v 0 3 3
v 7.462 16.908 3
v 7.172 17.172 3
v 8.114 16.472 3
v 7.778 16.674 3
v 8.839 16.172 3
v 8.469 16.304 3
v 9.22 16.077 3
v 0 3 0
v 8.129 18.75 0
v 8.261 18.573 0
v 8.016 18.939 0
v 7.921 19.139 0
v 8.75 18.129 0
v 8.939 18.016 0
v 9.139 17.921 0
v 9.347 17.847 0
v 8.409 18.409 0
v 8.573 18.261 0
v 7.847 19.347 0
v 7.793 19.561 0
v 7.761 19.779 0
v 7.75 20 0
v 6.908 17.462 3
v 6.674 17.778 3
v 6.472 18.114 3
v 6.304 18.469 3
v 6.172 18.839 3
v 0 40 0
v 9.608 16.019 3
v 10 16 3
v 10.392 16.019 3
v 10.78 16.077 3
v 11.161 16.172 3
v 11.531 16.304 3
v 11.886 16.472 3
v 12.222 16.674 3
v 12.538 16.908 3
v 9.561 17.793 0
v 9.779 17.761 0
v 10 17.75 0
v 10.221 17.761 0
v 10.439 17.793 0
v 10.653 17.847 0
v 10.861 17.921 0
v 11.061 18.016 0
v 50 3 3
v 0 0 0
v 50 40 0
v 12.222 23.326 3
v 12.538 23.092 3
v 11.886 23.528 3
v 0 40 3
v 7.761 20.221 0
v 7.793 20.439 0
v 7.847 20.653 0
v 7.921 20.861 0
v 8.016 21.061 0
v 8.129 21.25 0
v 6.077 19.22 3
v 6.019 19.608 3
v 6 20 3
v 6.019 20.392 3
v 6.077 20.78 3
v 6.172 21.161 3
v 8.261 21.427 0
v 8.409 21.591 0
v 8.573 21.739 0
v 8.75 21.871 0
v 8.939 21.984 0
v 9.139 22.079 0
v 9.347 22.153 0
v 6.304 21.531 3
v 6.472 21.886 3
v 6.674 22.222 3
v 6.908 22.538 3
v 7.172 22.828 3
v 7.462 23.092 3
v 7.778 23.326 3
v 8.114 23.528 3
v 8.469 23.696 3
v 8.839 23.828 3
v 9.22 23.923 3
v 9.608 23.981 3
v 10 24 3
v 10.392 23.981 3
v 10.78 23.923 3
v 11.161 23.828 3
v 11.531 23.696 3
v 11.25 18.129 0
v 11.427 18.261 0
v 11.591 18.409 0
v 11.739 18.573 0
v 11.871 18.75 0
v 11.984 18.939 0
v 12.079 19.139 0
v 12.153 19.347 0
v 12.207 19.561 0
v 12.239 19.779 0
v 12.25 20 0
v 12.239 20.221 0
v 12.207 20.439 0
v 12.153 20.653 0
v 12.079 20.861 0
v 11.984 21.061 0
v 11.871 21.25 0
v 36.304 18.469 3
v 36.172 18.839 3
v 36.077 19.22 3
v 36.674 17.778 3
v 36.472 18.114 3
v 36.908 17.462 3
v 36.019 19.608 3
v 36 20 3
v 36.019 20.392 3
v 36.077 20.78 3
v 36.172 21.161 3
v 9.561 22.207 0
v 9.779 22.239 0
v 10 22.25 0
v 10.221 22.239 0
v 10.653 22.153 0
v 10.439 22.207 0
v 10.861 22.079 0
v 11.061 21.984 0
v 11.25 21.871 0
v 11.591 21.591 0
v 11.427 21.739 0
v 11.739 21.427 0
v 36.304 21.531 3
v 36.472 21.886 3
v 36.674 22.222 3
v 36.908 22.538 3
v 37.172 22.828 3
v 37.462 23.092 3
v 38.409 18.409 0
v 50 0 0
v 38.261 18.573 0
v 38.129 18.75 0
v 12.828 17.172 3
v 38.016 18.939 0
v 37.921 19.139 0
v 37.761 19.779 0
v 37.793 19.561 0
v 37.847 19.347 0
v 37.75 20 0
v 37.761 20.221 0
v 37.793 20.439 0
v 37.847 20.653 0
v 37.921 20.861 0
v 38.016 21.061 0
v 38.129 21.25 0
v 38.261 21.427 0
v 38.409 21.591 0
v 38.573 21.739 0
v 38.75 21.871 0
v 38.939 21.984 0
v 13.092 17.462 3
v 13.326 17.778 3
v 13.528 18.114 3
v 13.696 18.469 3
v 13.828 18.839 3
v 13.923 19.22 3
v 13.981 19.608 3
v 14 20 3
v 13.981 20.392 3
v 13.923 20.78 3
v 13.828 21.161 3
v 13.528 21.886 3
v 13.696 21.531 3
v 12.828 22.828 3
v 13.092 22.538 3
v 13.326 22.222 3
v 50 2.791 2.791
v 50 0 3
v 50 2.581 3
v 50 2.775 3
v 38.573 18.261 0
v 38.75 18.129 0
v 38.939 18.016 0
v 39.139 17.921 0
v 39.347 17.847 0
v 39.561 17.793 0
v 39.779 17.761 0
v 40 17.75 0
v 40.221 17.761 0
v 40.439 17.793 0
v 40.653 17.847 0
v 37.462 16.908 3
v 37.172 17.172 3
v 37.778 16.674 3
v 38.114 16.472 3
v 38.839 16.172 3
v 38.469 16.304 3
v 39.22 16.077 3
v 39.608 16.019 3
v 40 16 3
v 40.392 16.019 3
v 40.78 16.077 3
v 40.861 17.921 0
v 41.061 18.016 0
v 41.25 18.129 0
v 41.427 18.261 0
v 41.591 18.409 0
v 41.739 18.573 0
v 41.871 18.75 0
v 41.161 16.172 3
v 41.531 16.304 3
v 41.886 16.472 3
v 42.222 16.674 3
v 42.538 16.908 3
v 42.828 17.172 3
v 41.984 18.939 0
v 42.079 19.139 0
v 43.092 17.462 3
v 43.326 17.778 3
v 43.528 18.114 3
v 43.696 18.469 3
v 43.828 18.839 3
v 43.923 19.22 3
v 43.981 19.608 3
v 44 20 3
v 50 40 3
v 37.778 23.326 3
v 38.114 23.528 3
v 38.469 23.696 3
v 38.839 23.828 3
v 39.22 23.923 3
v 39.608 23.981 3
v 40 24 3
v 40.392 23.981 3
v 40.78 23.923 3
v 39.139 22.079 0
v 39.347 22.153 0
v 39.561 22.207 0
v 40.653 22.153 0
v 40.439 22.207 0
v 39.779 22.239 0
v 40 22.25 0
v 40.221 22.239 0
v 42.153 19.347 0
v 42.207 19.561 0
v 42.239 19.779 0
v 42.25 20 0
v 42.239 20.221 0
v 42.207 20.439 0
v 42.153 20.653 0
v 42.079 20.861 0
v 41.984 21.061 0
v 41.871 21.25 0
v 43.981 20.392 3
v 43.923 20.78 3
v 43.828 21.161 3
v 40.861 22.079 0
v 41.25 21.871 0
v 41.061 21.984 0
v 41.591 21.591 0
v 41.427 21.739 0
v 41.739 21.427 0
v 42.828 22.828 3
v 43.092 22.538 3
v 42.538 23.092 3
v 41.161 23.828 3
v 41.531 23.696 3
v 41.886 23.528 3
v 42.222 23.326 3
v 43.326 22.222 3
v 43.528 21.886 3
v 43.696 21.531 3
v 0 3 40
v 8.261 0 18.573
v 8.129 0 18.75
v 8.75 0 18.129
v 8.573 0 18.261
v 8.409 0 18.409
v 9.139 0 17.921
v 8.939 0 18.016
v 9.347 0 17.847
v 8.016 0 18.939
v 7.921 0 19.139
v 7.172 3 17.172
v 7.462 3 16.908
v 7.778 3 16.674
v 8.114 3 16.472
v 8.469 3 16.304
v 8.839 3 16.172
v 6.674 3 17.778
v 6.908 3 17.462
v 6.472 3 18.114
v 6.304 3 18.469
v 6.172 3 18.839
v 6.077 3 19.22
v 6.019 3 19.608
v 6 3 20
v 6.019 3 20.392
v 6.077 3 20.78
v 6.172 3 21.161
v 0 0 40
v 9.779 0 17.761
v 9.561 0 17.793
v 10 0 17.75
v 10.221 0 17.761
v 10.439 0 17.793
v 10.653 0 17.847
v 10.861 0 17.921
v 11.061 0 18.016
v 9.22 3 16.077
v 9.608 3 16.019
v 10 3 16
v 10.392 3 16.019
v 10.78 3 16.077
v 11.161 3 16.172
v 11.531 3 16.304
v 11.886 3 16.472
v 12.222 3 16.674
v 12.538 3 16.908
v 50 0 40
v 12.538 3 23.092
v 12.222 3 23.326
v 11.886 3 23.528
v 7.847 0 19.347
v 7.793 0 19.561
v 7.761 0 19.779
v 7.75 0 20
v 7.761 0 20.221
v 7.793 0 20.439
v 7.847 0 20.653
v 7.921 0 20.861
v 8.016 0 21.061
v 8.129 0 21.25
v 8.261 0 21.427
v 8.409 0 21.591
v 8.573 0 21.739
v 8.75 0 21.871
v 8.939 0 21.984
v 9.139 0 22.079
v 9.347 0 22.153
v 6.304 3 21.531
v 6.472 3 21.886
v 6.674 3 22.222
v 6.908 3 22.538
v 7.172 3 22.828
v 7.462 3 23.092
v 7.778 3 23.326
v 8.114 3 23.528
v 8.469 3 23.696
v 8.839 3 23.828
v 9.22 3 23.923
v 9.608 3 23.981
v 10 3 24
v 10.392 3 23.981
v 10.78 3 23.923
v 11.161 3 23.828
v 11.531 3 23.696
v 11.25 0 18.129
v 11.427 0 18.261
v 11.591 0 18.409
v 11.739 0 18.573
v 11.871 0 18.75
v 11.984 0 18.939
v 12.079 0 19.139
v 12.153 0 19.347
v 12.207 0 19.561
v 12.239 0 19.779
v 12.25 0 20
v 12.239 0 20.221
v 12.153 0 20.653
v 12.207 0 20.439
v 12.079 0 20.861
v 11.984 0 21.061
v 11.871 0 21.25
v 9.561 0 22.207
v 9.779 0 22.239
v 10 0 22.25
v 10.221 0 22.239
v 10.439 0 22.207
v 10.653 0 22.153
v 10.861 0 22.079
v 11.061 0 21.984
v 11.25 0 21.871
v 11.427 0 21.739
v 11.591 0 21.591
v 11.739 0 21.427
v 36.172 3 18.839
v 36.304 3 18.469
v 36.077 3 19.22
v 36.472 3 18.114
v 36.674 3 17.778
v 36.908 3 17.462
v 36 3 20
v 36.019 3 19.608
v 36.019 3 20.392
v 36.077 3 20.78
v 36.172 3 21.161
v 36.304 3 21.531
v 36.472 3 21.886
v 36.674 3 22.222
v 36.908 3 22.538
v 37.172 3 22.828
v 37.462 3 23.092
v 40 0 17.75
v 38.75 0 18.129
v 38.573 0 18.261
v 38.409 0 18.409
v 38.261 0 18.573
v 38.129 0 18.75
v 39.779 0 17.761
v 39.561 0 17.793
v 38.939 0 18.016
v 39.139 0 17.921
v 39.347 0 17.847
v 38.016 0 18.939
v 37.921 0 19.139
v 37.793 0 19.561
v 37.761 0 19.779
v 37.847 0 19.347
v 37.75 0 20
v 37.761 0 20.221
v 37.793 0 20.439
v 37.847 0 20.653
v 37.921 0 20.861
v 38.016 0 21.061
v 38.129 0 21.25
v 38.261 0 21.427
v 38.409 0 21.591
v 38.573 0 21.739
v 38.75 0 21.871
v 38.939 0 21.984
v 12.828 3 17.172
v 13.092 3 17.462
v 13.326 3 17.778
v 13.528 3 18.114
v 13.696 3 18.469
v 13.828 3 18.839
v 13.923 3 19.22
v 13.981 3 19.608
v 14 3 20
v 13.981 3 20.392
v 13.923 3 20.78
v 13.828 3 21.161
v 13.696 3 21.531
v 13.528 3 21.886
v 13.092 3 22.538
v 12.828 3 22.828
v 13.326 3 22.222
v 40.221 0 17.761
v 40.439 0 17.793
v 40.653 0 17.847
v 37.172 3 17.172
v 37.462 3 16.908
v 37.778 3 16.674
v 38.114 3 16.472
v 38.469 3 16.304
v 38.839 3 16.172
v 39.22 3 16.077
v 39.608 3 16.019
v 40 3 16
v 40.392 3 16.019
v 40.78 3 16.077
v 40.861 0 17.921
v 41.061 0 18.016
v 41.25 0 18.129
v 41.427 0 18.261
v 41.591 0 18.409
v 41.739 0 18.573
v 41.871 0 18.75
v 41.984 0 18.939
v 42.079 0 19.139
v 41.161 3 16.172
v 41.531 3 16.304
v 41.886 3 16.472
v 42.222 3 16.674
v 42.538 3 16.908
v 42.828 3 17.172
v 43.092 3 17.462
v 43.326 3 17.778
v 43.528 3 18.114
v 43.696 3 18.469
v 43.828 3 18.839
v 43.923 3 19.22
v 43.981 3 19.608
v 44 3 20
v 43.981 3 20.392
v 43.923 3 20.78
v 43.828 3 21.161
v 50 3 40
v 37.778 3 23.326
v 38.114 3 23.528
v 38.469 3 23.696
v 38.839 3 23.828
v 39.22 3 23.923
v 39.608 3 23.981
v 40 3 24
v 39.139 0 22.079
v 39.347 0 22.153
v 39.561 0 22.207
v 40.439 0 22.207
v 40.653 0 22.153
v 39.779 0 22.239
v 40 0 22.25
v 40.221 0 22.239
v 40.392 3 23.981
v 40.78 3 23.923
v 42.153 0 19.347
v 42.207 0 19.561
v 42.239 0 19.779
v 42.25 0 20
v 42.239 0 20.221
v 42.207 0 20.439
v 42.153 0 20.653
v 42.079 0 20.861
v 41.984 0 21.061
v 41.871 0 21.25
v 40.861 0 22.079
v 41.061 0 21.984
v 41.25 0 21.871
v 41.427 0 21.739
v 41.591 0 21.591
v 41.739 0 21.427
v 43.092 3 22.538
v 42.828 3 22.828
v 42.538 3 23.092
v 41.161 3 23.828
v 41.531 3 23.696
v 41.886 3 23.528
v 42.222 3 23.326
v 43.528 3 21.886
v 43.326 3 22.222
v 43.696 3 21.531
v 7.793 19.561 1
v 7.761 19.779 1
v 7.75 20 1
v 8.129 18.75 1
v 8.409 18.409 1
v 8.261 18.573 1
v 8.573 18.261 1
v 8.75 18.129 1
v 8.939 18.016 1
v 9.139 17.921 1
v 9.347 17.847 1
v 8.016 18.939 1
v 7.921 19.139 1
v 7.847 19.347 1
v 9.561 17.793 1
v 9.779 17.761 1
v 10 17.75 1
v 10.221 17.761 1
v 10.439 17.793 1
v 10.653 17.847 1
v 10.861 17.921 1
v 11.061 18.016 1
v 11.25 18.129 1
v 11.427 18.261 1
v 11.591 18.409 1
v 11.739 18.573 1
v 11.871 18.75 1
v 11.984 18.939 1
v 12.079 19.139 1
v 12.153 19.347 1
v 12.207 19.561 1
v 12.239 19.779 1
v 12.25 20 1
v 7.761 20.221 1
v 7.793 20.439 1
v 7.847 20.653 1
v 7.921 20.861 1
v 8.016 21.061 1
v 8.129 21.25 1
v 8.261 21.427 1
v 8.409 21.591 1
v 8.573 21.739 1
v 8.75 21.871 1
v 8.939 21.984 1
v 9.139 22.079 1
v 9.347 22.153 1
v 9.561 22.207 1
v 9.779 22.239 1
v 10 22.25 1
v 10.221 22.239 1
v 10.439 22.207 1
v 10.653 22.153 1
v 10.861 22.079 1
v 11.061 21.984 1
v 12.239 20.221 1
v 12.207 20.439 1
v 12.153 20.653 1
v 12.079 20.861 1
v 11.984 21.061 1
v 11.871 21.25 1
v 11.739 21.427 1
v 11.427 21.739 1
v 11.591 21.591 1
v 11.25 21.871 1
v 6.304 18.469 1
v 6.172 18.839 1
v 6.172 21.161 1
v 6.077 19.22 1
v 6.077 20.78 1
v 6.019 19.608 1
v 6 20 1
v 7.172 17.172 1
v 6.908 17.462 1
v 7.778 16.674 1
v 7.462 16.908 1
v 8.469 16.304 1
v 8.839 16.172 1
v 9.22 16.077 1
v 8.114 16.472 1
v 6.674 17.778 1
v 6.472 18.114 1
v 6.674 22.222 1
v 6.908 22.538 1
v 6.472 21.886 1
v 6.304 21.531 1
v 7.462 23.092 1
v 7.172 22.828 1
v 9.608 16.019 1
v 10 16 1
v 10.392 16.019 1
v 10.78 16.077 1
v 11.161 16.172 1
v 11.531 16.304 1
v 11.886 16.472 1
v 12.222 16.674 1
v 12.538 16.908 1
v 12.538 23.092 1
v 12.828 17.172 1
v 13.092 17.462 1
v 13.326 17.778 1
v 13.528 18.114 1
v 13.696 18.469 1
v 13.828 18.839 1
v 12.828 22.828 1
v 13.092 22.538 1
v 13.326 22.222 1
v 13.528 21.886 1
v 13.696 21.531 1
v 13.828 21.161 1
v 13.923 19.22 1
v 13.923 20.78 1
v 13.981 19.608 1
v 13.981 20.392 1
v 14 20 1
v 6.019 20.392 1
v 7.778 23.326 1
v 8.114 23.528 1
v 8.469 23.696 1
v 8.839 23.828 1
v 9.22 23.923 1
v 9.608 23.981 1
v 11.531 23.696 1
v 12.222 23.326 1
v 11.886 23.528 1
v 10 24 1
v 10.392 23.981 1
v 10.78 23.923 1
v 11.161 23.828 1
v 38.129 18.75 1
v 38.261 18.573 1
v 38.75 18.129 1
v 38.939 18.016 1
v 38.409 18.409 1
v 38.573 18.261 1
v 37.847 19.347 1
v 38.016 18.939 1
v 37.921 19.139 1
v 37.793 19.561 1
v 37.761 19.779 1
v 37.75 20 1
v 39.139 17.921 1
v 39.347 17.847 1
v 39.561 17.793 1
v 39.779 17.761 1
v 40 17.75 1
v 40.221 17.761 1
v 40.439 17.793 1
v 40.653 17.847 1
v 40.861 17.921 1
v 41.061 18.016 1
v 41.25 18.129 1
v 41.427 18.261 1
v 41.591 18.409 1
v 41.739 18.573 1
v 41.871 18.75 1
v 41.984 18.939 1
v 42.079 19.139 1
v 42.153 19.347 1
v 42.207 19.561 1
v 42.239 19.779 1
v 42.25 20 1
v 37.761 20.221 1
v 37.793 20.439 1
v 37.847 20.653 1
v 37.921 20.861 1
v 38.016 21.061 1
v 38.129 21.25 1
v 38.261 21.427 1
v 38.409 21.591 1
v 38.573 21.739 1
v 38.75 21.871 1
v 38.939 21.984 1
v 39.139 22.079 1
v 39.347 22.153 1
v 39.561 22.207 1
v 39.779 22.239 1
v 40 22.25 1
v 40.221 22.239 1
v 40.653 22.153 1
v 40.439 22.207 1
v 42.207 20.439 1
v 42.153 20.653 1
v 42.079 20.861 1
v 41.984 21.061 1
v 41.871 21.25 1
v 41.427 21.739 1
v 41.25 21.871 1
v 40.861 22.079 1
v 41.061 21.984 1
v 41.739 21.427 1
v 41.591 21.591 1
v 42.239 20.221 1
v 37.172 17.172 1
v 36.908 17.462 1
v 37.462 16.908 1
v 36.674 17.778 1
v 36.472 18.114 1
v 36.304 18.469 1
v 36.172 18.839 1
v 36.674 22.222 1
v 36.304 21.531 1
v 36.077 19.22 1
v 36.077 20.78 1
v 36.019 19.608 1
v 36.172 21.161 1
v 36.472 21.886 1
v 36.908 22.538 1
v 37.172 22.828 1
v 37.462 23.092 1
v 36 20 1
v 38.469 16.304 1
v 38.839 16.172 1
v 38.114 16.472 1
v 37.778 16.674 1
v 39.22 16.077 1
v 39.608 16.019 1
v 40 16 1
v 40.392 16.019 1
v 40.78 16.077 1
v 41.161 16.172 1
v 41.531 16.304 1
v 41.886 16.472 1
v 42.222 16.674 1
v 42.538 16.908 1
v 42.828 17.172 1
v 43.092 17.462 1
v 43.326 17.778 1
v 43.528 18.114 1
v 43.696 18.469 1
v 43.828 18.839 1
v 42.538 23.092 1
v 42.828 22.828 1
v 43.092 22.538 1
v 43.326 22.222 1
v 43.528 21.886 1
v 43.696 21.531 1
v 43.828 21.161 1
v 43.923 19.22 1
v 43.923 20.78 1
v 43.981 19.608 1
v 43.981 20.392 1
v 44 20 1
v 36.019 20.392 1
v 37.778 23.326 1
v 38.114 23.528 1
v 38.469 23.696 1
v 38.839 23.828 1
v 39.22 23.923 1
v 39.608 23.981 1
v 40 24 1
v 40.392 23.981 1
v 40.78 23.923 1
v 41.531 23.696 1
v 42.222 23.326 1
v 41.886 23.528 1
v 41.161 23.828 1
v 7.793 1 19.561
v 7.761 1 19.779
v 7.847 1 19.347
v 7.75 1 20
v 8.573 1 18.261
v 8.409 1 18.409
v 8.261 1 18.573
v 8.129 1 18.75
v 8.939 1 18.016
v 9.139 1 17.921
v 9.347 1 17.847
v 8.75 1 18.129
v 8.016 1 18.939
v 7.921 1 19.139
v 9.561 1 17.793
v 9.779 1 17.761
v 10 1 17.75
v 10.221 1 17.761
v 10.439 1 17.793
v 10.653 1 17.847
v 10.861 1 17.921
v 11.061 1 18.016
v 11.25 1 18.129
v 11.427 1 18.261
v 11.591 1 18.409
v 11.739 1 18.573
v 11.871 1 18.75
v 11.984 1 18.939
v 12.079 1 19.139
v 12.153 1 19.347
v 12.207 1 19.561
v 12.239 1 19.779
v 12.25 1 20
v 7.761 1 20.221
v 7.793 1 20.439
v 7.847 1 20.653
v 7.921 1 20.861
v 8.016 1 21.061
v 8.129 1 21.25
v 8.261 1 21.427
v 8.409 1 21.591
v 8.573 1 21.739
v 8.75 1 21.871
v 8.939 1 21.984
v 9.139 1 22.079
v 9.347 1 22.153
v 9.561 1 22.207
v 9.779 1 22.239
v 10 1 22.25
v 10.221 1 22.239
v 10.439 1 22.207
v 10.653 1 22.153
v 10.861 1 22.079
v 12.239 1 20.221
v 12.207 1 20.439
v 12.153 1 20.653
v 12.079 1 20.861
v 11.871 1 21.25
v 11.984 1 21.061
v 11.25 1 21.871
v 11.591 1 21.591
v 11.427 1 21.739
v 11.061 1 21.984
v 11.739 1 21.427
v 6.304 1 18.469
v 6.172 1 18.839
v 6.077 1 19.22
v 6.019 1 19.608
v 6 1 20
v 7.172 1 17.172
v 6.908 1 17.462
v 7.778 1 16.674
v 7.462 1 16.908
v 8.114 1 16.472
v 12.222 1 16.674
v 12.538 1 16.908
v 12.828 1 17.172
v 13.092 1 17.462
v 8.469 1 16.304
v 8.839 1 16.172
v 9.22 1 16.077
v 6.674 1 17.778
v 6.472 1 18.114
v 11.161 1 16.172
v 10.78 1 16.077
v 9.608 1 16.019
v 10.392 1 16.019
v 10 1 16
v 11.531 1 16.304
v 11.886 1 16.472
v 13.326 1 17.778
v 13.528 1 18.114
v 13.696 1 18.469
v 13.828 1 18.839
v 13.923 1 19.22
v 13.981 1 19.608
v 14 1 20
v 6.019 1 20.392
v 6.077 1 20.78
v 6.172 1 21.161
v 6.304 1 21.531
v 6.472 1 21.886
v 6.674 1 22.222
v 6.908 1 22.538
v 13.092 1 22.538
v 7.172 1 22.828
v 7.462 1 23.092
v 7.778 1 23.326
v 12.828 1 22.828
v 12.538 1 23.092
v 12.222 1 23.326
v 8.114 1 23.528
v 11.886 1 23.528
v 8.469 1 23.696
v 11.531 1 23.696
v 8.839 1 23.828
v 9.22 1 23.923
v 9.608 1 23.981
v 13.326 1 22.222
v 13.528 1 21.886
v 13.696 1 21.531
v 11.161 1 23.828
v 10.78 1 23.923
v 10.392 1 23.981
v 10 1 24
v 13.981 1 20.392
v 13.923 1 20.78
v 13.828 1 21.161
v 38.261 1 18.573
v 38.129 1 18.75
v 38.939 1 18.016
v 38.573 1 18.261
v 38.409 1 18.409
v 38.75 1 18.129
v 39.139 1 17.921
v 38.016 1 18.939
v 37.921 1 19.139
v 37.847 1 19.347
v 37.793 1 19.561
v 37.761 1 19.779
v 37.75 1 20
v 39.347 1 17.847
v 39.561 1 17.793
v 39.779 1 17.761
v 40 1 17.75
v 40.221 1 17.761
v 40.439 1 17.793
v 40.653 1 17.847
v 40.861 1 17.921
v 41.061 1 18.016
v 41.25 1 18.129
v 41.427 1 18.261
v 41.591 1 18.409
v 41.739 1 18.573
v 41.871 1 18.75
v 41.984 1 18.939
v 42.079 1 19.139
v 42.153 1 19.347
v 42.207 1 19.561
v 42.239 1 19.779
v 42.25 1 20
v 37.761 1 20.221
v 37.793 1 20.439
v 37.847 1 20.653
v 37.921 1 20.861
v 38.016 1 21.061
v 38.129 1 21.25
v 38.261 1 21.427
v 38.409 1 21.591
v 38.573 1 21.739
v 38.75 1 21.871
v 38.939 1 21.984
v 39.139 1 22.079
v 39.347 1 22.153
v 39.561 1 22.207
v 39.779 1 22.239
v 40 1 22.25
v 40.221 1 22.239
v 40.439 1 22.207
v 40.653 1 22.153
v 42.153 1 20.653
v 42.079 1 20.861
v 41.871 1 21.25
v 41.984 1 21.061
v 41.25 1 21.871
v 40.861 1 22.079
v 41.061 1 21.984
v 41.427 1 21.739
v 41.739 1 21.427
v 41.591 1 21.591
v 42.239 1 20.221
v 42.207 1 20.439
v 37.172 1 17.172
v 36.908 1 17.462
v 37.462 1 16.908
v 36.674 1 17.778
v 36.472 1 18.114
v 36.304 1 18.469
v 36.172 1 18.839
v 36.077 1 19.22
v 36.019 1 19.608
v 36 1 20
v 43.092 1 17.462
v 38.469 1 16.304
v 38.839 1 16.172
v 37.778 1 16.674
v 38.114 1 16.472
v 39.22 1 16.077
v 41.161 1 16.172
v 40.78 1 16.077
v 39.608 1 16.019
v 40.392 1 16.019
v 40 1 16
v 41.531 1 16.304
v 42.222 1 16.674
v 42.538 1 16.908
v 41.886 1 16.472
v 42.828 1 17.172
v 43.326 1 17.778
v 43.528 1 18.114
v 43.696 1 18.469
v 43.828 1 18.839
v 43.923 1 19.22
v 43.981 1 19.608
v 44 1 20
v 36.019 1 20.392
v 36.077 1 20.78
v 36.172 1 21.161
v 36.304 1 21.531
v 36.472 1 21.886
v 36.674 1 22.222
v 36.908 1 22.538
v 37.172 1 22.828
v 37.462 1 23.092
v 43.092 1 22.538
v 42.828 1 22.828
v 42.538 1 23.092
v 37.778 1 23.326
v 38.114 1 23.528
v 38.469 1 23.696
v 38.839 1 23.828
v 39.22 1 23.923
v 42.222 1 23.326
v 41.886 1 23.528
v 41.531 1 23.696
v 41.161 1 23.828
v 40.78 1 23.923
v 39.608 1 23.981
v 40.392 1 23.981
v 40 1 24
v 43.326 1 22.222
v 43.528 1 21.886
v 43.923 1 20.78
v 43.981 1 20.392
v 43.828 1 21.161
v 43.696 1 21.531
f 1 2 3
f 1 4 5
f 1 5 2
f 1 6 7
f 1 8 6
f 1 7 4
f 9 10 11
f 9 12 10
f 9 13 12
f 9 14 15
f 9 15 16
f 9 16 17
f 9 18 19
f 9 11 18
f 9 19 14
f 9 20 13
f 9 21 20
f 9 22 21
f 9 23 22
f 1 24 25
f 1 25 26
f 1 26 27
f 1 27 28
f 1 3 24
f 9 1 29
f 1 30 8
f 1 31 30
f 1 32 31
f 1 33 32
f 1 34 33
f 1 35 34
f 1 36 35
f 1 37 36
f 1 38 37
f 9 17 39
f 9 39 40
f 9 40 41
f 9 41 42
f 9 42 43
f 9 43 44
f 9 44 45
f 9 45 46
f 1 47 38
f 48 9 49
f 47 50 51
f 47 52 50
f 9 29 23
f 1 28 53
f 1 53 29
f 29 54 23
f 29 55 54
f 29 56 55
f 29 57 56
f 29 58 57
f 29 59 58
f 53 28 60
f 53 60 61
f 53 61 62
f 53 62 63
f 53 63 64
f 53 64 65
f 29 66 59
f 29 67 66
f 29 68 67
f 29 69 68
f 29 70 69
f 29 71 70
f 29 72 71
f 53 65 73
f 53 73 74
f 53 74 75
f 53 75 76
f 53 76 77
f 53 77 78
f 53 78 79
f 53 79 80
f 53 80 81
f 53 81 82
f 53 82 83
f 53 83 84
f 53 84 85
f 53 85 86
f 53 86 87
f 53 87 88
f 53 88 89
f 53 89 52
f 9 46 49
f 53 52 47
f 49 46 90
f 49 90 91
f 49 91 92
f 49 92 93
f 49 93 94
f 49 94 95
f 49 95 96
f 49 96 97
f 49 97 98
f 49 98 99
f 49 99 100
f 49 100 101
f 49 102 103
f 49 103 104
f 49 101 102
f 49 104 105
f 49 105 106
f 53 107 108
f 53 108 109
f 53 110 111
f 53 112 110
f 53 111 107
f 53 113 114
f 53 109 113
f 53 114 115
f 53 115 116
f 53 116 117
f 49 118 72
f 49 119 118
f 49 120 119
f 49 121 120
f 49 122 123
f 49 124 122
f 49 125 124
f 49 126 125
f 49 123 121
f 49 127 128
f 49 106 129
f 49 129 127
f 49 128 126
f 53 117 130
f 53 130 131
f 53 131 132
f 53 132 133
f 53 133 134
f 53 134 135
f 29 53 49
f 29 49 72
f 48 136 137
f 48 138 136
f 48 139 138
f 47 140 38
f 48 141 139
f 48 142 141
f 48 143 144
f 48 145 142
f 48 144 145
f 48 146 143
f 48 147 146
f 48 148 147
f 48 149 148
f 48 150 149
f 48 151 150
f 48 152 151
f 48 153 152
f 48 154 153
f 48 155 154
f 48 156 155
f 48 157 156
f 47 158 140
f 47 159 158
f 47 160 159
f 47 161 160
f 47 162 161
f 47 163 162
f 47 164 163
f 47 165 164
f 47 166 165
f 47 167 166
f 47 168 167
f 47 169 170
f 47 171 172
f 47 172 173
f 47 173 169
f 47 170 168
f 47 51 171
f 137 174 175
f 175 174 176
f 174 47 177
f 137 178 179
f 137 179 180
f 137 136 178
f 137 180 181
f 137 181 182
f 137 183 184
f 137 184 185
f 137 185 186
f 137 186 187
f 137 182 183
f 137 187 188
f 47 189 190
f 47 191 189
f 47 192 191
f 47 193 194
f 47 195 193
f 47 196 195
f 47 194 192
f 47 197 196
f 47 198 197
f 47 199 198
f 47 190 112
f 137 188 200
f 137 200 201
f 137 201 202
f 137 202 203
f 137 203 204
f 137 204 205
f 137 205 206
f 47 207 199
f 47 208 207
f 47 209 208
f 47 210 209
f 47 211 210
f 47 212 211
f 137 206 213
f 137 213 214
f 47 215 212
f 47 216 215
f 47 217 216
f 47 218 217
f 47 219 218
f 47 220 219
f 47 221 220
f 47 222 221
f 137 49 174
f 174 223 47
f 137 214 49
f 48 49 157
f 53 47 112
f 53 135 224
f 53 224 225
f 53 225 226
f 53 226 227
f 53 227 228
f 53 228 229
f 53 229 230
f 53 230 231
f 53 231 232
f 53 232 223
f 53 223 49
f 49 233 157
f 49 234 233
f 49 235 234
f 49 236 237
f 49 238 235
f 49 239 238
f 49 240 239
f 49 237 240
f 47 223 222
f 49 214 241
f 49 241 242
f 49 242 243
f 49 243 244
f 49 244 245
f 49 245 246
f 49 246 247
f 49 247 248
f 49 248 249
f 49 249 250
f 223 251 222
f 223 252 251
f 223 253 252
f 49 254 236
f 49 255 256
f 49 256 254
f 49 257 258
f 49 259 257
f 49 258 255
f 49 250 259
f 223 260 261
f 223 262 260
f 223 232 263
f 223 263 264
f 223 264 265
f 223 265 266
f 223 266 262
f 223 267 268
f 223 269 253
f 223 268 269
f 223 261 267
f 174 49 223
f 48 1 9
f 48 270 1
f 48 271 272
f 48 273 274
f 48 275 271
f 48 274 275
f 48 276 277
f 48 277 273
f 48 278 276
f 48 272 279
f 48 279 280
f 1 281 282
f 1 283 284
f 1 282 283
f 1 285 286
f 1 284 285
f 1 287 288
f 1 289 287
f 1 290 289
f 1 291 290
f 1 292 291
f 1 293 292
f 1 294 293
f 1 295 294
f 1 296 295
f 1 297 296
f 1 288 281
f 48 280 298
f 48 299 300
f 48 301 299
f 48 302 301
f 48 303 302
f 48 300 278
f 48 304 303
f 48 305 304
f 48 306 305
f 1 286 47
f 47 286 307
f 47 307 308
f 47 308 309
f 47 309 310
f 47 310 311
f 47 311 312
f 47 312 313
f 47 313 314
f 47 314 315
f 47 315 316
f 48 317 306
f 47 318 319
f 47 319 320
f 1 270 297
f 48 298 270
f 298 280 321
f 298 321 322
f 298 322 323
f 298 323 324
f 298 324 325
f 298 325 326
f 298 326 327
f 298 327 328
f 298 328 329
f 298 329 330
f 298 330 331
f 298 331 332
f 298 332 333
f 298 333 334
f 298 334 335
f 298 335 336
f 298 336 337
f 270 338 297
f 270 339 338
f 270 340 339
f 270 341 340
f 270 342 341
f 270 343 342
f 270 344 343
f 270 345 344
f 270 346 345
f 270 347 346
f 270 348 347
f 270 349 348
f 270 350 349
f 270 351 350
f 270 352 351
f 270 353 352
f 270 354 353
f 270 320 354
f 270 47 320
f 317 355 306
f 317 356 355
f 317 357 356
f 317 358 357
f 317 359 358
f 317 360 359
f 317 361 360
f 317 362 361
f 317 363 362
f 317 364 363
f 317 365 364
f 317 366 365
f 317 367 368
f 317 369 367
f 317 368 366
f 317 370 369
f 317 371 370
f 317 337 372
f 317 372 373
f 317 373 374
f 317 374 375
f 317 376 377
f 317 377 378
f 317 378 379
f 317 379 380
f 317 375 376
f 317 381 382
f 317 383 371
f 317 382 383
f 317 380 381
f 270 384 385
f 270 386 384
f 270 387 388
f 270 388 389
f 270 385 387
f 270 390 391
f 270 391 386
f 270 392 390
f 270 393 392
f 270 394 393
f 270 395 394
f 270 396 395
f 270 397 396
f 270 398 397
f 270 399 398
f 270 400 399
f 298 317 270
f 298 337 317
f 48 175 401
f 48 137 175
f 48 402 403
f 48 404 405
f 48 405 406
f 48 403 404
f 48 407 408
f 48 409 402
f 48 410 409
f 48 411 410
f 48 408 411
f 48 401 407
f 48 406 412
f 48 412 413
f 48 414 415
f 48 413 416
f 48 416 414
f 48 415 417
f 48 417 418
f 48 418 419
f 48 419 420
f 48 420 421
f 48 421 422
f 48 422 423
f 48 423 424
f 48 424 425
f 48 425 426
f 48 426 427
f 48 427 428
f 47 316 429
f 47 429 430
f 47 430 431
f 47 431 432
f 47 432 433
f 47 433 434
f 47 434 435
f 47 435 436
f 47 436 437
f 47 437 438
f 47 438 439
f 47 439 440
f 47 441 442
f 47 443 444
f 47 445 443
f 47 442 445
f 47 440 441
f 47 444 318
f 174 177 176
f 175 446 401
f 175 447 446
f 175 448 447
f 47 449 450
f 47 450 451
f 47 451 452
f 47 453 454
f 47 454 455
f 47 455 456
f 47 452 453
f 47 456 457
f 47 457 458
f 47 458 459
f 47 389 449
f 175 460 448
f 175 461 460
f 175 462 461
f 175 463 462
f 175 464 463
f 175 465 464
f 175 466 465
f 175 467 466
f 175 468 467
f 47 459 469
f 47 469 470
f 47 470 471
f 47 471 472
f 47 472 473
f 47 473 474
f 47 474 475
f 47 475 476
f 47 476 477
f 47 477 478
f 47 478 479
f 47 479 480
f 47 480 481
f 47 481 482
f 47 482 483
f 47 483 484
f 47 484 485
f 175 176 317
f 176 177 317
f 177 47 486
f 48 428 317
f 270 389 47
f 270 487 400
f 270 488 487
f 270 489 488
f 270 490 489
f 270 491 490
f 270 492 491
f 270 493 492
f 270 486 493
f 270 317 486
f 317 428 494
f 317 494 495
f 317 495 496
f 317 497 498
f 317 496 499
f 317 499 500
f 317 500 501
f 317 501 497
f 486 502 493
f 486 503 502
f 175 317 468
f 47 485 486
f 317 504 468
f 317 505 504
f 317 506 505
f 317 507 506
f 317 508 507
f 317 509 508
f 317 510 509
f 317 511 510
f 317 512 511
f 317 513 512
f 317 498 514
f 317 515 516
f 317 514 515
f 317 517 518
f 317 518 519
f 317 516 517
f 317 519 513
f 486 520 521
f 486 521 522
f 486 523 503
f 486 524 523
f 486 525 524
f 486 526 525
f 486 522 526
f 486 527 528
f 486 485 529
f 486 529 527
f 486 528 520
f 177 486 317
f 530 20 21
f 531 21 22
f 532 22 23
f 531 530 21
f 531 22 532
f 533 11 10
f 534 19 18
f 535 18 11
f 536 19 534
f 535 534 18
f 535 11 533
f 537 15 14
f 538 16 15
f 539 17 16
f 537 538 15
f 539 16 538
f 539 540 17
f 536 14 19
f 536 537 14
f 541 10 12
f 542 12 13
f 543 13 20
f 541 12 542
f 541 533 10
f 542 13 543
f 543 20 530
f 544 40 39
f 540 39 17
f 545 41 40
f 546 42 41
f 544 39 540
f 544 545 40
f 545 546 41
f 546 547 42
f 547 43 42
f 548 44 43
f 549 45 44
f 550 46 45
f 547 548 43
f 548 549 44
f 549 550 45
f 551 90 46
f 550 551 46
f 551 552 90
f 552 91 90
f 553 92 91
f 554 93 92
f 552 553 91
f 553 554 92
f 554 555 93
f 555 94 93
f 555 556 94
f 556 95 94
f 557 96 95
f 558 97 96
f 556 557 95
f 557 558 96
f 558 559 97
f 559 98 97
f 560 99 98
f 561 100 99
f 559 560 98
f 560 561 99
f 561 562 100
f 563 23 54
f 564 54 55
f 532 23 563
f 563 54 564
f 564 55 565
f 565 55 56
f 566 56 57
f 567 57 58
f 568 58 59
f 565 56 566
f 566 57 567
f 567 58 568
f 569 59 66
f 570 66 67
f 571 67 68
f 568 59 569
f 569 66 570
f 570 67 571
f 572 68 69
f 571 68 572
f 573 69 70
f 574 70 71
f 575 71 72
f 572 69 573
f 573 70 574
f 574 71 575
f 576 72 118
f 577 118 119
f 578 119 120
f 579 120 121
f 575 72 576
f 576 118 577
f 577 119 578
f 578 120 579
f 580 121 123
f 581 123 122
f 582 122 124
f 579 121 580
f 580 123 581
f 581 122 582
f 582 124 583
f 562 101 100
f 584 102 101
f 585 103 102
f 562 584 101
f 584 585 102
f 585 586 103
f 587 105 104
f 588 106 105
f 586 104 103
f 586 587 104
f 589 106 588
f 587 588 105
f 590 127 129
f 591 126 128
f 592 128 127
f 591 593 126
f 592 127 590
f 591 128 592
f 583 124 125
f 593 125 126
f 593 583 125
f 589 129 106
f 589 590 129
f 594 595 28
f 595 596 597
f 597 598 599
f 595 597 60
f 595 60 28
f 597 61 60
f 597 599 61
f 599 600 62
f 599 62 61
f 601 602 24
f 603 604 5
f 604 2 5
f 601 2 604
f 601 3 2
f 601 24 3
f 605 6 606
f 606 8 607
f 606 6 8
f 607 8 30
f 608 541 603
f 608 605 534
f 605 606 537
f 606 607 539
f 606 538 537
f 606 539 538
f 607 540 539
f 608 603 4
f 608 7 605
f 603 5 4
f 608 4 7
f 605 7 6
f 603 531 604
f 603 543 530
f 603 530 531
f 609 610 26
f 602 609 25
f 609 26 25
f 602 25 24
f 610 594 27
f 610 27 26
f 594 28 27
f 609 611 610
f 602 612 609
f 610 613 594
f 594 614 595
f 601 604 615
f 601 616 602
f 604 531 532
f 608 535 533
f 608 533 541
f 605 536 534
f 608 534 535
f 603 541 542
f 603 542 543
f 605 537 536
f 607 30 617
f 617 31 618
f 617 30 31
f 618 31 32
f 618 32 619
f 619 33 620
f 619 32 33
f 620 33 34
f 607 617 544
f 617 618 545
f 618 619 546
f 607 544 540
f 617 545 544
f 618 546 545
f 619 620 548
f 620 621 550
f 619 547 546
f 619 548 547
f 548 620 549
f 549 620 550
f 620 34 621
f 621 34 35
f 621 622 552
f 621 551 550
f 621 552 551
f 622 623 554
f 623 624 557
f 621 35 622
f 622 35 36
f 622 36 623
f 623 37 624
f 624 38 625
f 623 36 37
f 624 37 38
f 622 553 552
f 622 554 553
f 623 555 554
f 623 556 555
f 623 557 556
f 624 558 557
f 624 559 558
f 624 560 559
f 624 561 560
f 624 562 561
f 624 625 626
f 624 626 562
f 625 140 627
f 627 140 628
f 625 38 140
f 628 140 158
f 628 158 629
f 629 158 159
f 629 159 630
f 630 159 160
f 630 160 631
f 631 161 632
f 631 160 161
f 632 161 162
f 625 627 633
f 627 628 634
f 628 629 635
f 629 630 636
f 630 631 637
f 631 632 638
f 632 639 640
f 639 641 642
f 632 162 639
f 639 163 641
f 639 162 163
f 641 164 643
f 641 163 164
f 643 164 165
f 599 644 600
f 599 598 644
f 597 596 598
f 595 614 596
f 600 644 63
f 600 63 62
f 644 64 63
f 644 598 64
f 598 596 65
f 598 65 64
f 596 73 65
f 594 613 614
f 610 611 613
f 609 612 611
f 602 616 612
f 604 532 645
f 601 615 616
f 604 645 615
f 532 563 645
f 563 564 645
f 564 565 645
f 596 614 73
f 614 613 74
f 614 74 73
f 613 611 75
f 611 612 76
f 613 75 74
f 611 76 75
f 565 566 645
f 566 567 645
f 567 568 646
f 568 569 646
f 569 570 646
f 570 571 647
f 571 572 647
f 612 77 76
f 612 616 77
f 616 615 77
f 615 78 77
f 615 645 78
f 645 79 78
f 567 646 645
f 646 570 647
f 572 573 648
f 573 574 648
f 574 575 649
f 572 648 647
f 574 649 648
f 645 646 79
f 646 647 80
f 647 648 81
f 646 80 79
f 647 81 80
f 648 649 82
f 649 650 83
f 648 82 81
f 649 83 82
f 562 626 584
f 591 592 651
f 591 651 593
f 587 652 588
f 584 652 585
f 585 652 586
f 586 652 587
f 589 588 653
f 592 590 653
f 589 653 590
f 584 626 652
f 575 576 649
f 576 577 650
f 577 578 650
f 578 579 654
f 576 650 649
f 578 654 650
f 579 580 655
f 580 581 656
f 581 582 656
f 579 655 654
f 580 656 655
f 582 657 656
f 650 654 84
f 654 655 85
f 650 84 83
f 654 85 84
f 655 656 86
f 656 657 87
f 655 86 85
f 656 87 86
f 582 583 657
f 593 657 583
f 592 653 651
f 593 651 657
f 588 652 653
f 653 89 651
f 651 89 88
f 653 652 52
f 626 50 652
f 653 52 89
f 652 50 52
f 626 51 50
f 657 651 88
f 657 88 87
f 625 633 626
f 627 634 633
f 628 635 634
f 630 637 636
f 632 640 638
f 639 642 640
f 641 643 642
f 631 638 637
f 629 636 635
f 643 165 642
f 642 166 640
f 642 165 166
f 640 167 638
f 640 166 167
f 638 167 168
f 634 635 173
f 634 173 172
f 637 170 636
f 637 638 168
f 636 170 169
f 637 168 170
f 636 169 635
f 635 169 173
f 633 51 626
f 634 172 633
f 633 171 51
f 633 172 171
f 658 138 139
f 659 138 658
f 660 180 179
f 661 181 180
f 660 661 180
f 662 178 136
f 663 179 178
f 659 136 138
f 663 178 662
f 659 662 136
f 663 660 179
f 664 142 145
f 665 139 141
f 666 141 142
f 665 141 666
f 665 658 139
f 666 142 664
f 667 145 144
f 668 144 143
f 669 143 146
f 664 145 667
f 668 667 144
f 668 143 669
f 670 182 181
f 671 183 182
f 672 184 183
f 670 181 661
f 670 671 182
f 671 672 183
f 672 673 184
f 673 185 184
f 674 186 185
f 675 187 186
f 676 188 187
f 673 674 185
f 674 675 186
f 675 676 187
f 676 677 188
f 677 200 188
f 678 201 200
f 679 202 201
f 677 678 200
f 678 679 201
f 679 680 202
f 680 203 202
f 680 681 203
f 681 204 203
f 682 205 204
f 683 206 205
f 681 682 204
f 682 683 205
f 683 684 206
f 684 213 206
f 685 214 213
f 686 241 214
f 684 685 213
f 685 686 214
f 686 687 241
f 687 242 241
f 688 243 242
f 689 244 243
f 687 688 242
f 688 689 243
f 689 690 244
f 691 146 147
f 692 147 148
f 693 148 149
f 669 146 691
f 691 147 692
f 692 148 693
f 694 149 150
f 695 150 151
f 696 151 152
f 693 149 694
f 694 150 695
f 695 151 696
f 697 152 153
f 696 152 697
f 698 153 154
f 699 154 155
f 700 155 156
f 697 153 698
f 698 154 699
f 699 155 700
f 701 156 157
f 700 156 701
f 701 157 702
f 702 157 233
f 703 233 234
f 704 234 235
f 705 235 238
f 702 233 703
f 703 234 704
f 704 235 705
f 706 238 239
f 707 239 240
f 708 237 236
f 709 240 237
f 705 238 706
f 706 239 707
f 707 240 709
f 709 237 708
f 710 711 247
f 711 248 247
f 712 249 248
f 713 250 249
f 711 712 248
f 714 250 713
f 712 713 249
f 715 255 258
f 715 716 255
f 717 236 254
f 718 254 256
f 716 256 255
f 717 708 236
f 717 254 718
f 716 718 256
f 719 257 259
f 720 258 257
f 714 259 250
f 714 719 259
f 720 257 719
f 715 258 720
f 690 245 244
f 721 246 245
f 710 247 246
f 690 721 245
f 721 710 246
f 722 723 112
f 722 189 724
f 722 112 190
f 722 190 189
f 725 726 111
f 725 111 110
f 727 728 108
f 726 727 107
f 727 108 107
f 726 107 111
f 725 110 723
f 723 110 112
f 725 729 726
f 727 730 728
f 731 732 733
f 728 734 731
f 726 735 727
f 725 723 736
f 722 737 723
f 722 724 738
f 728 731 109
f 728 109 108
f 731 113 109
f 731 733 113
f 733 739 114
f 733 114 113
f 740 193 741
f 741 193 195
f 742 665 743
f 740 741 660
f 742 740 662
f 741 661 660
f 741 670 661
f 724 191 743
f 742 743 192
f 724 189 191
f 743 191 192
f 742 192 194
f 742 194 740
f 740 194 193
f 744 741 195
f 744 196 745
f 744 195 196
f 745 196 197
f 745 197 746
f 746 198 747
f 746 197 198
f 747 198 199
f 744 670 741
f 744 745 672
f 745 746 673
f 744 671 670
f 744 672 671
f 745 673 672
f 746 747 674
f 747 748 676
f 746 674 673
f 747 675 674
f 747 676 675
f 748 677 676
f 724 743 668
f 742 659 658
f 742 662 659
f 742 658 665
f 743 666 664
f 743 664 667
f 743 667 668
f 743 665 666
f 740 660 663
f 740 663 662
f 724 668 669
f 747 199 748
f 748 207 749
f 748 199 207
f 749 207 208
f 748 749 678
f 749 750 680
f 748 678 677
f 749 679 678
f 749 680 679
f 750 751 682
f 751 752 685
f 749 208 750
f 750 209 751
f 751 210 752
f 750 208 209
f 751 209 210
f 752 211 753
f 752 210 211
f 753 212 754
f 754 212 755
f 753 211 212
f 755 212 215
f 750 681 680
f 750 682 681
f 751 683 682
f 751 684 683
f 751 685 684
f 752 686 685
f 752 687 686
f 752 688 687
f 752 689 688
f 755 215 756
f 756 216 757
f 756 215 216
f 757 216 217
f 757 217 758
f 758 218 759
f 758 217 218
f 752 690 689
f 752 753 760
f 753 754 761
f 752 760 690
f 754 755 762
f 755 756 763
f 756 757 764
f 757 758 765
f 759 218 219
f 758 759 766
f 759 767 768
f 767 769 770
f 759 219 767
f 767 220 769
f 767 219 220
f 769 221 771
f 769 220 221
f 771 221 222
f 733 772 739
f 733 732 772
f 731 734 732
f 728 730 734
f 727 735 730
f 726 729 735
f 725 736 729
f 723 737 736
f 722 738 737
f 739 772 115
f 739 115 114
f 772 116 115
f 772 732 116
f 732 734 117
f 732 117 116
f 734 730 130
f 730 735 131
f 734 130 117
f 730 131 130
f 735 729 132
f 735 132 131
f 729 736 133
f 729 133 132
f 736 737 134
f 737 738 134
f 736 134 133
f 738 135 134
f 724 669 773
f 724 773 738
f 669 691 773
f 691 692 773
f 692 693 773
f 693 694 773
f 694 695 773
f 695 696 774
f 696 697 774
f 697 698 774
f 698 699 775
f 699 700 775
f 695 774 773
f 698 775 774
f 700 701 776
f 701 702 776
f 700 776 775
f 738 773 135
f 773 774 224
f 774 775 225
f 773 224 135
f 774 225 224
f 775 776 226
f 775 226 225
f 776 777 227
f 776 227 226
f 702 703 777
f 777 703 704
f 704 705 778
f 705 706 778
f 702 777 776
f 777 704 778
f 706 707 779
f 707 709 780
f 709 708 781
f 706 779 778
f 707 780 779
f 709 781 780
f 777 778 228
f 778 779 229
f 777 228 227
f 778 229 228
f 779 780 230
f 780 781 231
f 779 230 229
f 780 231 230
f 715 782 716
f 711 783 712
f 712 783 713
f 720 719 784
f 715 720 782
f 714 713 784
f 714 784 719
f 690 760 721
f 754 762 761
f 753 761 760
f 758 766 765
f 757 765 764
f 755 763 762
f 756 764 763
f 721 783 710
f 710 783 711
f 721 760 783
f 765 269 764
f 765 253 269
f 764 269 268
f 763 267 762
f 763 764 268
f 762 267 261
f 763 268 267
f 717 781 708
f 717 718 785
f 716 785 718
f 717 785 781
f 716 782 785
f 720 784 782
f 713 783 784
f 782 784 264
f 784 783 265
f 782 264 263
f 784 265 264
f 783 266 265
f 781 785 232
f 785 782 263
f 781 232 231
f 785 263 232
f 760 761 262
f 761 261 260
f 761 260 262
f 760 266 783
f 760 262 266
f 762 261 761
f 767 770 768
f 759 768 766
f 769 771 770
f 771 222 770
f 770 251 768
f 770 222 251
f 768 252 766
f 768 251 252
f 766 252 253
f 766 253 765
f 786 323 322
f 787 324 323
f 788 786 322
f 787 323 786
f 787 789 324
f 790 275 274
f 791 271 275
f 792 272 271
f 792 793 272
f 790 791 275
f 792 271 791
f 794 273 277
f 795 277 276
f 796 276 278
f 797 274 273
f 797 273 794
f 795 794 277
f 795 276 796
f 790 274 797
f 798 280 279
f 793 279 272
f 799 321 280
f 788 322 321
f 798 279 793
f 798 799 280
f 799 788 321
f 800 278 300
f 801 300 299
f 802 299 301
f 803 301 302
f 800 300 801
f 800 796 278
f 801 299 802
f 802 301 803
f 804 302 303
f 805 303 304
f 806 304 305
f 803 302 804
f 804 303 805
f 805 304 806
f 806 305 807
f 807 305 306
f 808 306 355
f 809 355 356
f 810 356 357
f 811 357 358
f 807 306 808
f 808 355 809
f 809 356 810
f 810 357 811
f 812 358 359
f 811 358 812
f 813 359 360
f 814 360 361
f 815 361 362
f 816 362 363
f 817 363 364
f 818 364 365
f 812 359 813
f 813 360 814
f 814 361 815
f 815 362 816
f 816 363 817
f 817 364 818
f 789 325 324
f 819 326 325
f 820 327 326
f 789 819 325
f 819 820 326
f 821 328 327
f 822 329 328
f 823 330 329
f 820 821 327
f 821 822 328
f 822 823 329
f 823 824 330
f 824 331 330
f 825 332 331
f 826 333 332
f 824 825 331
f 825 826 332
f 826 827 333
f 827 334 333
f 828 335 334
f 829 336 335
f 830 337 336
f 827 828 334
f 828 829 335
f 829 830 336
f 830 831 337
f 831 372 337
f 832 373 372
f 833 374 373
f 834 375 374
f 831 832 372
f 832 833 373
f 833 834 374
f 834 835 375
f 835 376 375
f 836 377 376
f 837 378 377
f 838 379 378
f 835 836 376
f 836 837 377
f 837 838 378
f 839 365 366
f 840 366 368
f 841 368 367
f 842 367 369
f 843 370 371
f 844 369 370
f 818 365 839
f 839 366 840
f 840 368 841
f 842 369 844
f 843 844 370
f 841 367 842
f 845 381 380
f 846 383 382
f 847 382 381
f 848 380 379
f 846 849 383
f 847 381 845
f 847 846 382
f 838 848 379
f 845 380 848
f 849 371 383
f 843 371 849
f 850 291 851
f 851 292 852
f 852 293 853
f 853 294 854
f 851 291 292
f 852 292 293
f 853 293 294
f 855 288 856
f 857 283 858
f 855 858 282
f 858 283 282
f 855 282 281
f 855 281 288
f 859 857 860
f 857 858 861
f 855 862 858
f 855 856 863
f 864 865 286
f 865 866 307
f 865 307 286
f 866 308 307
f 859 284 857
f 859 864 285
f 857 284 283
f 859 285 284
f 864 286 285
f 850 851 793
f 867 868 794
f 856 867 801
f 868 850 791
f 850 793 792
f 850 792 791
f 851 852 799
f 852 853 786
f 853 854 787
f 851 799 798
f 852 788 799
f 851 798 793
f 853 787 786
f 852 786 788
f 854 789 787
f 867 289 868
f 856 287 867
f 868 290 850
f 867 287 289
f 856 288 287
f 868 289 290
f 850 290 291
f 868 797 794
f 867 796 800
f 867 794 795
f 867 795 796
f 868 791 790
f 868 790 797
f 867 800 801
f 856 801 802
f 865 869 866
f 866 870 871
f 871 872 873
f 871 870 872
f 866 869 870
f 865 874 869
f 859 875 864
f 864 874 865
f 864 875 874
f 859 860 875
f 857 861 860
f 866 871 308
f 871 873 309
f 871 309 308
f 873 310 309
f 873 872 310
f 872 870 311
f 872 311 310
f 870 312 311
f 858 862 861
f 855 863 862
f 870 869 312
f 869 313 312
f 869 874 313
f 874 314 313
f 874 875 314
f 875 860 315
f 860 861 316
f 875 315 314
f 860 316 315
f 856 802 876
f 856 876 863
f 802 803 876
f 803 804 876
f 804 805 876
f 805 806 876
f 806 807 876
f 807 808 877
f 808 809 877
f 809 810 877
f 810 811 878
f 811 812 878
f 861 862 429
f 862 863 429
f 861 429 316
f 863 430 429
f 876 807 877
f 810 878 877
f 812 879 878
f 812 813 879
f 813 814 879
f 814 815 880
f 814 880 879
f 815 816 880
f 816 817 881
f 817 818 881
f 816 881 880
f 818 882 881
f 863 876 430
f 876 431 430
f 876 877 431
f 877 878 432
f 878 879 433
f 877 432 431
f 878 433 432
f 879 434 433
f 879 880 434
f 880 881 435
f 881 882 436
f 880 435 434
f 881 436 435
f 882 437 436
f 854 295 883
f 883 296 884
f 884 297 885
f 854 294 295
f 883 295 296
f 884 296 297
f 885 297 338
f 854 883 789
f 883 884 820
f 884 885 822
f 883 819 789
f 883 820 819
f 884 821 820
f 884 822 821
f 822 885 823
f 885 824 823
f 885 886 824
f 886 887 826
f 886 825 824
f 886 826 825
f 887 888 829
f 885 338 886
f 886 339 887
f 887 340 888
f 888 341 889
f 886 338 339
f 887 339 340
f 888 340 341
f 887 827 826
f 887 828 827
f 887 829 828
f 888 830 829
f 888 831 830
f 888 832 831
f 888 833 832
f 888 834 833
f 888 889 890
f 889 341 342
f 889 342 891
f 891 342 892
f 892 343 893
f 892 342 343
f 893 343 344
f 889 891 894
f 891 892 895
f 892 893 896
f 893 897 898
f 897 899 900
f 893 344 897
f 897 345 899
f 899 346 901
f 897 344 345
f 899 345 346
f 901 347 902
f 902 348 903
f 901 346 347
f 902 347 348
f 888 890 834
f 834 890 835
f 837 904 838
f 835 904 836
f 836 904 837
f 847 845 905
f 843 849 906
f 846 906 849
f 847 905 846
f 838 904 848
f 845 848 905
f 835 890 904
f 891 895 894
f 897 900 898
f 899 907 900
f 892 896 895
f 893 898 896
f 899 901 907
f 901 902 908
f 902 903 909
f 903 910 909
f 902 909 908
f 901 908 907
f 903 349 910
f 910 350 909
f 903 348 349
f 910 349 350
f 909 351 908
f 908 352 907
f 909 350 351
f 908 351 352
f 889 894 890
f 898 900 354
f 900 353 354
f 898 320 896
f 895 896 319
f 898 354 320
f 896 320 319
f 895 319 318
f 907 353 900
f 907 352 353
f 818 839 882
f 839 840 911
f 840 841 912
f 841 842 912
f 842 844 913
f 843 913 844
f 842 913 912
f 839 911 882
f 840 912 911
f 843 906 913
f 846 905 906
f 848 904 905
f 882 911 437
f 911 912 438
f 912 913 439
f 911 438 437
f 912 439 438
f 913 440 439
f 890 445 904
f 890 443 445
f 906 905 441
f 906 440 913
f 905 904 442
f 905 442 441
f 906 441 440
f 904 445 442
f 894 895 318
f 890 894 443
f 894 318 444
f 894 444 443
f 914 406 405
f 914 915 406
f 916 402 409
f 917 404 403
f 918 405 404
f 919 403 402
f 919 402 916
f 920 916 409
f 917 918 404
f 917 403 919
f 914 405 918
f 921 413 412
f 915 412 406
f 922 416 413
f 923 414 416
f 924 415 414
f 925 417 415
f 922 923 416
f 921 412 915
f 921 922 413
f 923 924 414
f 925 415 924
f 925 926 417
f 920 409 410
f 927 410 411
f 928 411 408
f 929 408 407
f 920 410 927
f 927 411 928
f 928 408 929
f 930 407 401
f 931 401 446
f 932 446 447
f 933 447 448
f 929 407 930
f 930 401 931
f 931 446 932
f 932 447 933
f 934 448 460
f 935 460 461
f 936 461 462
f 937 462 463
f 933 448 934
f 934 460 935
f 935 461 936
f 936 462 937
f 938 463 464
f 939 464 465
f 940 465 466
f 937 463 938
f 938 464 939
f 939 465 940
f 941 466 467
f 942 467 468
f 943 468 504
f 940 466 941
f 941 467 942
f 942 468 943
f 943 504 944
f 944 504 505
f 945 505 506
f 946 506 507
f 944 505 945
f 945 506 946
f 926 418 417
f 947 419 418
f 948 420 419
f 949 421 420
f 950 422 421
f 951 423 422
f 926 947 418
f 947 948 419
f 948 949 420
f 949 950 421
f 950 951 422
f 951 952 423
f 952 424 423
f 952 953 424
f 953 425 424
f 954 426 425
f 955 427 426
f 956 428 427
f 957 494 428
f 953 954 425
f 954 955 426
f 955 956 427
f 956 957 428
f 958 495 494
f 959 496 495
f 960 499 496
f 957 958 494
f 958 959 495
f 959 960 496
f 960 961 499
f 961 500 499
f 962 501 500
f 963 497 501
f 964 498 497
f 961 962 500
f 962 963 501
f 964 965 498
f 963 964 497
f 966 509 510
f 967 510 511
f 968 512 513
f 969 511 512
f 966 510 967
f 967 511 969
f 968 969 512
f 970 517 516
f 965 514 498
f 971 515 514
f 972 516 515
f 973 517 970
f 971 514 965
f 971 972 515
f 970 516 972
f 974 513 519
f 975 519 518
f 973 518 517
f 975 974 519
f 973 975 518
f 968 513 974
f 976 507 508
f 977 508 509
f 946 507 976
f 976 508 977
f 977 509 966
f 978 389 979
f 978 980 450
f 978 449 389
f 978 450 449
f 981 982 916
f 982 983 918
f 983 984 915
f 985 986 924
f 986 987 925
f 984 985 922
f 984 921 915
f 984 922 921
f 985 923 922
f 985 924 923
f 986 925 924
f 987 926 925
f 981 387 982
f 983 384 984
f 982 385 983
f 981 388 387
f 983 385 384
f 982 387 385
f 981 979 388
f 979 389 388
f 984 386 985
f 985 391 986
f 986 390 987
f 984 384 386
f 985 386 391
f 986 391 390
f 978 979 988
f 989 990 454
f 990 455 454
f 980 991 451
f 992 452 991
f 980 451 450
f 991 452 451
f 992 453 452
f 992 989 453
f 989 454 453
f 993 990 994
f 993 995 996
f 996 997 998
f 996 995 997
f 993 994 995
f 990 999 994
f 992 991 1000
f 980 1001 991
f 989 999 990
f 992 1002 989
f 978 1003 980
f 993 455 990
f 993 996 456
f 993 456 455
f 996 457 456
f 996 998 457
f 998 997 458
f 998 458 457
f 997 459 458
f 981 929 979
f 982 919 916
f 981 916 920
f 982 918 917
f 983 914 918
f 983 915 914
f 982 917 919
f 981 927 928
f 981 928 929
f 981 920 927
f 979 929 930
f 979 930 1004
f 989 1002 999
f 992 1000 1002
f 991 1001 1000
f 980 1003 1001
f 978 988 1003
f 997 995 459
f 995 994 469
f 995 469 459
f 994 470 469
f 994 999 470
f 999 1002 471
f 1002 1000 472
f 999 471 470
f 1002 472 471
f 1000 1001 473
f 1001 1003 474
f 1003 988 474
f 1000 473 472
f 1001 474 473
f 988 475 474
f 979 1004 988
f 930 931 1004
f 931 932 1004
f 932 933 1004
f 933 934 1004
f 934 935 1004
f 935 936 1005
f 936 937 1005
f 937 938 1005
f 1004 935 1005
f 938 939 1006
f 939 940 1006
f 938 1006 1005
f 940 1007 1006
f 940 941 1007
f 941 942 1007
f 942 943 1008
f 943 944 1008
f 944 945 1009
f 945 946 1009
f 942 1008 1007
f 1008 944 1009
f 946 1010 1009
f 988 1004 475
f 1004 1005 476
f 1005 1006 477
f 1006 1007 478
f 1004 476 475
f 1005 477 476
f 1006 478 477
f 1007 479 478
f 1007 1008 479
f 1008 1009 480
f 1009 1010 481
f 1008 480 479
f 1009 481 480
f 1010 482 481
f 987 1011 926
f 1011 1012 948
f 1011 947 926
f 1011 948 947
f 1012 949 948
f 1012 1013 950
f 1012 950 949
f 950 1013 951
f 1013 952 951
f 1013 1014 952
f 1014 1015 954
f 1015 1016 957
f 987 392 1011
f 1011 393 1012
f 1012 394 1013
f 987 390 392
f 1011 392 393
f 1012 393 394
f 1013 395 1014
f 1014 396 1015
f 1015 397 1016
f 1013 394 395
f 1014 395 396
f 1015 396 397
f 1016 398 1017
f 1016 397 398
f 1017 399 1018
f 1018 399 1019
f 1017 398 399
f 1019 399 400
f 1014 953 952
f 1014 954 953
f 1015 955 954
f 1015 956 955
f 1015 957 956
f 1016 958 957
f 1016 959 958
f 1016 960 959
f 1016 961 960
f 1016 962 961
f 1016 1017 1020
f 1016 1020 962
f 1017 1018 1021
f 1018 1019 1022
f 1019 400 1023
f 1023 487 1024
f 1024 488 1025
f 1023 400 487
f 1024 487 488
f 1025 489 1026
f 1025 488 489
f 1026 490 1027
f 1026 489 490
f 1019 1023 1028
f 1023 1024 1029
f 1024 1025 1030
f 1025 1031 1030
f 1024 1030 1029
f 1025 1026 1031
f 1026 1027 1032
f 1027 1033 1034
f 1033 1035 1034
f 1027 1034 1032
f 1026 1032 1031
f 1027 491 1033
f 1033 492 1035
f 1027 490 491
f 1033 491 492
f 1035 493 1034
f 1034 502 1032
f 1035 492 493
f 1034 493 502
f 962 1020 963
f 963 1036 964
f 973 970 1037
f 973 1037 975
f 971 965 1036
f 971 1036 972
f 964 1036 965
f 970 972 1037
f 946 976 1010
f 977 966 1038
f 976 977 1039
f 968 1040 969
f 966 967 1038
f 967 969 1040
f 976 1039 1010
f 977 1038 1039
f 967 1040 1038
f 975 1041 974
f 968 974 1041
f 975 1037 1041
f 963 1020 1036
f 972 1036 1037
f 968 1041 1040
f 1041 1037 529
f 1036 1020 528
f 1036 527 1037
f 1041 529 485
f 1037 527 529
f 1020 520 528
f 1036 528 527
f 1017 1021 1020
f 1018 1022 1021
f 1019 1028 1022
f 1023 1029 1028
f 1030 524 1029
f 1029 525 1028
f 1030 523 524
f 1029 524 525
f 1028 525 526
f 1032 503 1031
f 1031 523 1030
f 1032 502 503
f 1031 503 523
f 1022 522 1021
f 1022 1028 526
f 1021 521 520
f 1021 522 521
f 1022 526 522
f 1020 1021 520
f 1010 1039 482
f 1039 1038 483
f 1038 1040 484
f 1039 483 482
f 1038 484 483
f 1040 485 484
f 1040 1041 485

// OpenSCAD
$fn = 64;

w = 50;        // 幅 (X)
d = 40;        // 水平面 奥行き (Y)
h = 40;        // 垂直面 高さ (Z)
t = 3;         // 板厚
hole_d = 4.5;  // 貫通穴径
cb_d = 8;      // 皿座面径
cb_depth = 2; // 皿座面深さ
offset = 10;   // 面の縁から内側
eps = 0.01;

xs = [offset, w - offset];
y_center = d / 2;
z_center = h / 2;

module countersunk_hole_through_Z(x, y, z0, plate_t) {
  // 貫通穴 (Z方向)
  translate([x, y, -eps + z0])
    cylinder(d = hole_d, h = plate_t + 2 * eps);

  // 皿座面 (外側 = +Z側)
  translate([x, y, plate_t - cb_depth + z0])
    cylinder(d = cb_d, h = cb_depth);
}

module countersunk_hole_through_Y(x, z, y0, plate_t) {
  // 貫通穴 (Y方向) : 回転してY軸へ
  translate([x, y0 + plate_t + eps, z])
    rotate([90, 0, 0])
      cylinder(d = hole_d, h = plate_t + 2 * eps);

  // 皿座面 (外側 = +Y側)
  translate([x, y0 + plate_t, z])
    rotate([90, 0, 0])
      cylinder(d = cb_d, h = cb_depth);
}

difference() {
  union() {
    // 水平フランジ: X(0..w), Y(0..d), Z(0..t)
    cube([w, d, t]);

    // 垂直フランジ: X(0..w), Y(0..t), Z(0..h)
    cube([w, t, h]);
  }

  // 水平面の皿穴 2個 (合計4個中2個)
  for (x = xs) {
    countersunk_hole_through_Z(x, y_center, 0, t);
  }

  // 垂直面の皿穴 2個 (合計4個中2個)
  for (x = xs) {
    countersunk_hole_through_Y(x, z_center, 0, t);
  }
}
